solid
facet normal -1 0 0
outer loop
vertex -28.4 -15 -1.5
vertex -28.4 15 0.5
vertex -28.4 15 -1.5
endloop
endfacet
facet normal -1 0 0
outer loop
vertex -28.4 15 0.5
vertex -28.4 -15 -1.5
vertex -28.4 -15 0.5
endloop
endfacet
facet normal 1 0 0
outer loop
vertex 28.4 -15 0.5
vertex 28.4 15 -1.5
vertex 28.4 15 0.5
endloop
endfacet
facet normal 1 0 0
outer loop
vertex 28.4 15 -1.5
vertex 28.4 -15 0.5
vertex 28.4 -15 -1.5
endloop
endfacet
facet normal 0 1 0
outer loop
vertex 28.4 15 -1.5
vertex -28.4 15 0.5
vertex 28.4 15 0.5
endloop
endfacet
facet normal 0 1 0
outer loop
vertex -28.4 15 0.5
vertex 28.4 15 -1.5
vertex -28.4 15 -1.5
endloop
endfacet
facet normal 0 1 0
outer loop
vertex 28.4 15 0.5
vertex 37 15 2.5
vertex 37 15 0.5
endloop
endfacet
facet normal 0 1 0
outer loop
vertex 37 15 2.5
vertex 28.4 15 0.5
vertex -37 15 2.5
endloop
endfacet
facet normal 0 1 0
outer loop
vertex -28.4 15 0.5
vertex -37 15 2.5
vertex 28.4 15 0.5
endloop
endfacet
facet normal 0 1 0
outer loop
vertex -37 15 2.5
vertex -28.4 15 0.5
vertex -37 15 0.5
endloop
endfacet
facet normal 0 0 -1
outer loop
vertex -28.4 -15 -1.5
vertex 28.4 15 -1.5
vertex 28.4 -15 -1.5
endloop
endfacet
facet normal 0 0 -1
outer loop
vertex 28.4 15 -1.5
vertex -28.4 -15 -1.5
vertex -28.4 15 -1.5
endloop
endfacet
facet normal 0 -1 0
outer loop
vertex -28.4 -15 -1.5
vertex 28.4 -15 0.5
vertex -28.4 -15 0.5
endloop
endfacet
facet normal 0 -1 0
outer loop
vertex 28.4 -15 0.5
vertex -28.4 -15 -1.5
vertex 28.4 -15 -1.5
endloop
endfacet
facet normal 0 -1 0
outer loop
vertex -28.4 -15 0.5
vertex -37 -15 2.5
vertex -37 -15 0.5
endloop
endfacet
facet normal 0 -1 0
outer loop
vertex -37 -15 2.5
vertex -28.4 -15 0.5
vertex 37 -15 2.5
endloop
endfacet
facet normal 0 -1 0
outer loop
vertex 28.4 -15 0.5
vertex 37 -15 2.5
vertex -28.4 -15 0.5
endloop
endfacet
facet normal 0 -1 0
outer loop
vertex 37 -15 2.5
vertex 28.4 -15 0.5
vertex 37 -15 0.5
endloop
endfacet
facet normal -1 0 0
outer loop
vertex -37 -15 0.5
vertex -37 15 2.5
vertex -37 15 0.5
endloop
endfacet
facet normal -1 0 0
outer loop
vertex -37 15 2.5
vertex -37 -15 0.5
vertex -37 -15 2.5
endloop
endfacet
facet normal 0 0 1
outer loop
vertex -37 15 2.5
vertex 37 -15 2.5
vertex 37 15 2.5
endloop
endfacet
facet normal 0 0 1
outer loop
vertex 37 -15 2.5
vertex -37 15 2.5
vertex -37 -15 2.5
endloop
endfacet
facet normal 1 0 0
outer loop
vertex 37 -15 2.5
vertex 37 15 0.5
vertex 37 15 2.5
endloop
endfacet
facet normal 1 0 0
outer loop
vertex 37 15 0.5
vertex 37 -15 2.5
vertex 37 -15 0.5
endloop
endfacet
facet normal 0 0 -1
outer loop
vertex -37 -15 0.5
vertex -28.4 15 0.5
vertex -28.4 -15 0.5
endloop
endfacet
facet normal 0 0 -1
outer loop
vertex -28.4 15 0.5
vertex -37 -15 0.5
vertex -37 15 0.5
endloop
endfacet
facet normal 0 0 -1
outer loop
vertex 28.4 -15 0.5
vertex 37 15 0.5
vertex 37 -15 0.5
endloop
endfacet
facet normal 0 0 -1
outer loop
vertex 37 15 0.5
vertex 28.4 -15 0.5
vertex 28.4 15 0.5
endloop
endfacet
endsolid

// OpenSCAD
union() {
    cube([56.8,30, 3], center=true);
    translate([0, 0, 1.5]) cube([74,30, 2], center=true);
}
